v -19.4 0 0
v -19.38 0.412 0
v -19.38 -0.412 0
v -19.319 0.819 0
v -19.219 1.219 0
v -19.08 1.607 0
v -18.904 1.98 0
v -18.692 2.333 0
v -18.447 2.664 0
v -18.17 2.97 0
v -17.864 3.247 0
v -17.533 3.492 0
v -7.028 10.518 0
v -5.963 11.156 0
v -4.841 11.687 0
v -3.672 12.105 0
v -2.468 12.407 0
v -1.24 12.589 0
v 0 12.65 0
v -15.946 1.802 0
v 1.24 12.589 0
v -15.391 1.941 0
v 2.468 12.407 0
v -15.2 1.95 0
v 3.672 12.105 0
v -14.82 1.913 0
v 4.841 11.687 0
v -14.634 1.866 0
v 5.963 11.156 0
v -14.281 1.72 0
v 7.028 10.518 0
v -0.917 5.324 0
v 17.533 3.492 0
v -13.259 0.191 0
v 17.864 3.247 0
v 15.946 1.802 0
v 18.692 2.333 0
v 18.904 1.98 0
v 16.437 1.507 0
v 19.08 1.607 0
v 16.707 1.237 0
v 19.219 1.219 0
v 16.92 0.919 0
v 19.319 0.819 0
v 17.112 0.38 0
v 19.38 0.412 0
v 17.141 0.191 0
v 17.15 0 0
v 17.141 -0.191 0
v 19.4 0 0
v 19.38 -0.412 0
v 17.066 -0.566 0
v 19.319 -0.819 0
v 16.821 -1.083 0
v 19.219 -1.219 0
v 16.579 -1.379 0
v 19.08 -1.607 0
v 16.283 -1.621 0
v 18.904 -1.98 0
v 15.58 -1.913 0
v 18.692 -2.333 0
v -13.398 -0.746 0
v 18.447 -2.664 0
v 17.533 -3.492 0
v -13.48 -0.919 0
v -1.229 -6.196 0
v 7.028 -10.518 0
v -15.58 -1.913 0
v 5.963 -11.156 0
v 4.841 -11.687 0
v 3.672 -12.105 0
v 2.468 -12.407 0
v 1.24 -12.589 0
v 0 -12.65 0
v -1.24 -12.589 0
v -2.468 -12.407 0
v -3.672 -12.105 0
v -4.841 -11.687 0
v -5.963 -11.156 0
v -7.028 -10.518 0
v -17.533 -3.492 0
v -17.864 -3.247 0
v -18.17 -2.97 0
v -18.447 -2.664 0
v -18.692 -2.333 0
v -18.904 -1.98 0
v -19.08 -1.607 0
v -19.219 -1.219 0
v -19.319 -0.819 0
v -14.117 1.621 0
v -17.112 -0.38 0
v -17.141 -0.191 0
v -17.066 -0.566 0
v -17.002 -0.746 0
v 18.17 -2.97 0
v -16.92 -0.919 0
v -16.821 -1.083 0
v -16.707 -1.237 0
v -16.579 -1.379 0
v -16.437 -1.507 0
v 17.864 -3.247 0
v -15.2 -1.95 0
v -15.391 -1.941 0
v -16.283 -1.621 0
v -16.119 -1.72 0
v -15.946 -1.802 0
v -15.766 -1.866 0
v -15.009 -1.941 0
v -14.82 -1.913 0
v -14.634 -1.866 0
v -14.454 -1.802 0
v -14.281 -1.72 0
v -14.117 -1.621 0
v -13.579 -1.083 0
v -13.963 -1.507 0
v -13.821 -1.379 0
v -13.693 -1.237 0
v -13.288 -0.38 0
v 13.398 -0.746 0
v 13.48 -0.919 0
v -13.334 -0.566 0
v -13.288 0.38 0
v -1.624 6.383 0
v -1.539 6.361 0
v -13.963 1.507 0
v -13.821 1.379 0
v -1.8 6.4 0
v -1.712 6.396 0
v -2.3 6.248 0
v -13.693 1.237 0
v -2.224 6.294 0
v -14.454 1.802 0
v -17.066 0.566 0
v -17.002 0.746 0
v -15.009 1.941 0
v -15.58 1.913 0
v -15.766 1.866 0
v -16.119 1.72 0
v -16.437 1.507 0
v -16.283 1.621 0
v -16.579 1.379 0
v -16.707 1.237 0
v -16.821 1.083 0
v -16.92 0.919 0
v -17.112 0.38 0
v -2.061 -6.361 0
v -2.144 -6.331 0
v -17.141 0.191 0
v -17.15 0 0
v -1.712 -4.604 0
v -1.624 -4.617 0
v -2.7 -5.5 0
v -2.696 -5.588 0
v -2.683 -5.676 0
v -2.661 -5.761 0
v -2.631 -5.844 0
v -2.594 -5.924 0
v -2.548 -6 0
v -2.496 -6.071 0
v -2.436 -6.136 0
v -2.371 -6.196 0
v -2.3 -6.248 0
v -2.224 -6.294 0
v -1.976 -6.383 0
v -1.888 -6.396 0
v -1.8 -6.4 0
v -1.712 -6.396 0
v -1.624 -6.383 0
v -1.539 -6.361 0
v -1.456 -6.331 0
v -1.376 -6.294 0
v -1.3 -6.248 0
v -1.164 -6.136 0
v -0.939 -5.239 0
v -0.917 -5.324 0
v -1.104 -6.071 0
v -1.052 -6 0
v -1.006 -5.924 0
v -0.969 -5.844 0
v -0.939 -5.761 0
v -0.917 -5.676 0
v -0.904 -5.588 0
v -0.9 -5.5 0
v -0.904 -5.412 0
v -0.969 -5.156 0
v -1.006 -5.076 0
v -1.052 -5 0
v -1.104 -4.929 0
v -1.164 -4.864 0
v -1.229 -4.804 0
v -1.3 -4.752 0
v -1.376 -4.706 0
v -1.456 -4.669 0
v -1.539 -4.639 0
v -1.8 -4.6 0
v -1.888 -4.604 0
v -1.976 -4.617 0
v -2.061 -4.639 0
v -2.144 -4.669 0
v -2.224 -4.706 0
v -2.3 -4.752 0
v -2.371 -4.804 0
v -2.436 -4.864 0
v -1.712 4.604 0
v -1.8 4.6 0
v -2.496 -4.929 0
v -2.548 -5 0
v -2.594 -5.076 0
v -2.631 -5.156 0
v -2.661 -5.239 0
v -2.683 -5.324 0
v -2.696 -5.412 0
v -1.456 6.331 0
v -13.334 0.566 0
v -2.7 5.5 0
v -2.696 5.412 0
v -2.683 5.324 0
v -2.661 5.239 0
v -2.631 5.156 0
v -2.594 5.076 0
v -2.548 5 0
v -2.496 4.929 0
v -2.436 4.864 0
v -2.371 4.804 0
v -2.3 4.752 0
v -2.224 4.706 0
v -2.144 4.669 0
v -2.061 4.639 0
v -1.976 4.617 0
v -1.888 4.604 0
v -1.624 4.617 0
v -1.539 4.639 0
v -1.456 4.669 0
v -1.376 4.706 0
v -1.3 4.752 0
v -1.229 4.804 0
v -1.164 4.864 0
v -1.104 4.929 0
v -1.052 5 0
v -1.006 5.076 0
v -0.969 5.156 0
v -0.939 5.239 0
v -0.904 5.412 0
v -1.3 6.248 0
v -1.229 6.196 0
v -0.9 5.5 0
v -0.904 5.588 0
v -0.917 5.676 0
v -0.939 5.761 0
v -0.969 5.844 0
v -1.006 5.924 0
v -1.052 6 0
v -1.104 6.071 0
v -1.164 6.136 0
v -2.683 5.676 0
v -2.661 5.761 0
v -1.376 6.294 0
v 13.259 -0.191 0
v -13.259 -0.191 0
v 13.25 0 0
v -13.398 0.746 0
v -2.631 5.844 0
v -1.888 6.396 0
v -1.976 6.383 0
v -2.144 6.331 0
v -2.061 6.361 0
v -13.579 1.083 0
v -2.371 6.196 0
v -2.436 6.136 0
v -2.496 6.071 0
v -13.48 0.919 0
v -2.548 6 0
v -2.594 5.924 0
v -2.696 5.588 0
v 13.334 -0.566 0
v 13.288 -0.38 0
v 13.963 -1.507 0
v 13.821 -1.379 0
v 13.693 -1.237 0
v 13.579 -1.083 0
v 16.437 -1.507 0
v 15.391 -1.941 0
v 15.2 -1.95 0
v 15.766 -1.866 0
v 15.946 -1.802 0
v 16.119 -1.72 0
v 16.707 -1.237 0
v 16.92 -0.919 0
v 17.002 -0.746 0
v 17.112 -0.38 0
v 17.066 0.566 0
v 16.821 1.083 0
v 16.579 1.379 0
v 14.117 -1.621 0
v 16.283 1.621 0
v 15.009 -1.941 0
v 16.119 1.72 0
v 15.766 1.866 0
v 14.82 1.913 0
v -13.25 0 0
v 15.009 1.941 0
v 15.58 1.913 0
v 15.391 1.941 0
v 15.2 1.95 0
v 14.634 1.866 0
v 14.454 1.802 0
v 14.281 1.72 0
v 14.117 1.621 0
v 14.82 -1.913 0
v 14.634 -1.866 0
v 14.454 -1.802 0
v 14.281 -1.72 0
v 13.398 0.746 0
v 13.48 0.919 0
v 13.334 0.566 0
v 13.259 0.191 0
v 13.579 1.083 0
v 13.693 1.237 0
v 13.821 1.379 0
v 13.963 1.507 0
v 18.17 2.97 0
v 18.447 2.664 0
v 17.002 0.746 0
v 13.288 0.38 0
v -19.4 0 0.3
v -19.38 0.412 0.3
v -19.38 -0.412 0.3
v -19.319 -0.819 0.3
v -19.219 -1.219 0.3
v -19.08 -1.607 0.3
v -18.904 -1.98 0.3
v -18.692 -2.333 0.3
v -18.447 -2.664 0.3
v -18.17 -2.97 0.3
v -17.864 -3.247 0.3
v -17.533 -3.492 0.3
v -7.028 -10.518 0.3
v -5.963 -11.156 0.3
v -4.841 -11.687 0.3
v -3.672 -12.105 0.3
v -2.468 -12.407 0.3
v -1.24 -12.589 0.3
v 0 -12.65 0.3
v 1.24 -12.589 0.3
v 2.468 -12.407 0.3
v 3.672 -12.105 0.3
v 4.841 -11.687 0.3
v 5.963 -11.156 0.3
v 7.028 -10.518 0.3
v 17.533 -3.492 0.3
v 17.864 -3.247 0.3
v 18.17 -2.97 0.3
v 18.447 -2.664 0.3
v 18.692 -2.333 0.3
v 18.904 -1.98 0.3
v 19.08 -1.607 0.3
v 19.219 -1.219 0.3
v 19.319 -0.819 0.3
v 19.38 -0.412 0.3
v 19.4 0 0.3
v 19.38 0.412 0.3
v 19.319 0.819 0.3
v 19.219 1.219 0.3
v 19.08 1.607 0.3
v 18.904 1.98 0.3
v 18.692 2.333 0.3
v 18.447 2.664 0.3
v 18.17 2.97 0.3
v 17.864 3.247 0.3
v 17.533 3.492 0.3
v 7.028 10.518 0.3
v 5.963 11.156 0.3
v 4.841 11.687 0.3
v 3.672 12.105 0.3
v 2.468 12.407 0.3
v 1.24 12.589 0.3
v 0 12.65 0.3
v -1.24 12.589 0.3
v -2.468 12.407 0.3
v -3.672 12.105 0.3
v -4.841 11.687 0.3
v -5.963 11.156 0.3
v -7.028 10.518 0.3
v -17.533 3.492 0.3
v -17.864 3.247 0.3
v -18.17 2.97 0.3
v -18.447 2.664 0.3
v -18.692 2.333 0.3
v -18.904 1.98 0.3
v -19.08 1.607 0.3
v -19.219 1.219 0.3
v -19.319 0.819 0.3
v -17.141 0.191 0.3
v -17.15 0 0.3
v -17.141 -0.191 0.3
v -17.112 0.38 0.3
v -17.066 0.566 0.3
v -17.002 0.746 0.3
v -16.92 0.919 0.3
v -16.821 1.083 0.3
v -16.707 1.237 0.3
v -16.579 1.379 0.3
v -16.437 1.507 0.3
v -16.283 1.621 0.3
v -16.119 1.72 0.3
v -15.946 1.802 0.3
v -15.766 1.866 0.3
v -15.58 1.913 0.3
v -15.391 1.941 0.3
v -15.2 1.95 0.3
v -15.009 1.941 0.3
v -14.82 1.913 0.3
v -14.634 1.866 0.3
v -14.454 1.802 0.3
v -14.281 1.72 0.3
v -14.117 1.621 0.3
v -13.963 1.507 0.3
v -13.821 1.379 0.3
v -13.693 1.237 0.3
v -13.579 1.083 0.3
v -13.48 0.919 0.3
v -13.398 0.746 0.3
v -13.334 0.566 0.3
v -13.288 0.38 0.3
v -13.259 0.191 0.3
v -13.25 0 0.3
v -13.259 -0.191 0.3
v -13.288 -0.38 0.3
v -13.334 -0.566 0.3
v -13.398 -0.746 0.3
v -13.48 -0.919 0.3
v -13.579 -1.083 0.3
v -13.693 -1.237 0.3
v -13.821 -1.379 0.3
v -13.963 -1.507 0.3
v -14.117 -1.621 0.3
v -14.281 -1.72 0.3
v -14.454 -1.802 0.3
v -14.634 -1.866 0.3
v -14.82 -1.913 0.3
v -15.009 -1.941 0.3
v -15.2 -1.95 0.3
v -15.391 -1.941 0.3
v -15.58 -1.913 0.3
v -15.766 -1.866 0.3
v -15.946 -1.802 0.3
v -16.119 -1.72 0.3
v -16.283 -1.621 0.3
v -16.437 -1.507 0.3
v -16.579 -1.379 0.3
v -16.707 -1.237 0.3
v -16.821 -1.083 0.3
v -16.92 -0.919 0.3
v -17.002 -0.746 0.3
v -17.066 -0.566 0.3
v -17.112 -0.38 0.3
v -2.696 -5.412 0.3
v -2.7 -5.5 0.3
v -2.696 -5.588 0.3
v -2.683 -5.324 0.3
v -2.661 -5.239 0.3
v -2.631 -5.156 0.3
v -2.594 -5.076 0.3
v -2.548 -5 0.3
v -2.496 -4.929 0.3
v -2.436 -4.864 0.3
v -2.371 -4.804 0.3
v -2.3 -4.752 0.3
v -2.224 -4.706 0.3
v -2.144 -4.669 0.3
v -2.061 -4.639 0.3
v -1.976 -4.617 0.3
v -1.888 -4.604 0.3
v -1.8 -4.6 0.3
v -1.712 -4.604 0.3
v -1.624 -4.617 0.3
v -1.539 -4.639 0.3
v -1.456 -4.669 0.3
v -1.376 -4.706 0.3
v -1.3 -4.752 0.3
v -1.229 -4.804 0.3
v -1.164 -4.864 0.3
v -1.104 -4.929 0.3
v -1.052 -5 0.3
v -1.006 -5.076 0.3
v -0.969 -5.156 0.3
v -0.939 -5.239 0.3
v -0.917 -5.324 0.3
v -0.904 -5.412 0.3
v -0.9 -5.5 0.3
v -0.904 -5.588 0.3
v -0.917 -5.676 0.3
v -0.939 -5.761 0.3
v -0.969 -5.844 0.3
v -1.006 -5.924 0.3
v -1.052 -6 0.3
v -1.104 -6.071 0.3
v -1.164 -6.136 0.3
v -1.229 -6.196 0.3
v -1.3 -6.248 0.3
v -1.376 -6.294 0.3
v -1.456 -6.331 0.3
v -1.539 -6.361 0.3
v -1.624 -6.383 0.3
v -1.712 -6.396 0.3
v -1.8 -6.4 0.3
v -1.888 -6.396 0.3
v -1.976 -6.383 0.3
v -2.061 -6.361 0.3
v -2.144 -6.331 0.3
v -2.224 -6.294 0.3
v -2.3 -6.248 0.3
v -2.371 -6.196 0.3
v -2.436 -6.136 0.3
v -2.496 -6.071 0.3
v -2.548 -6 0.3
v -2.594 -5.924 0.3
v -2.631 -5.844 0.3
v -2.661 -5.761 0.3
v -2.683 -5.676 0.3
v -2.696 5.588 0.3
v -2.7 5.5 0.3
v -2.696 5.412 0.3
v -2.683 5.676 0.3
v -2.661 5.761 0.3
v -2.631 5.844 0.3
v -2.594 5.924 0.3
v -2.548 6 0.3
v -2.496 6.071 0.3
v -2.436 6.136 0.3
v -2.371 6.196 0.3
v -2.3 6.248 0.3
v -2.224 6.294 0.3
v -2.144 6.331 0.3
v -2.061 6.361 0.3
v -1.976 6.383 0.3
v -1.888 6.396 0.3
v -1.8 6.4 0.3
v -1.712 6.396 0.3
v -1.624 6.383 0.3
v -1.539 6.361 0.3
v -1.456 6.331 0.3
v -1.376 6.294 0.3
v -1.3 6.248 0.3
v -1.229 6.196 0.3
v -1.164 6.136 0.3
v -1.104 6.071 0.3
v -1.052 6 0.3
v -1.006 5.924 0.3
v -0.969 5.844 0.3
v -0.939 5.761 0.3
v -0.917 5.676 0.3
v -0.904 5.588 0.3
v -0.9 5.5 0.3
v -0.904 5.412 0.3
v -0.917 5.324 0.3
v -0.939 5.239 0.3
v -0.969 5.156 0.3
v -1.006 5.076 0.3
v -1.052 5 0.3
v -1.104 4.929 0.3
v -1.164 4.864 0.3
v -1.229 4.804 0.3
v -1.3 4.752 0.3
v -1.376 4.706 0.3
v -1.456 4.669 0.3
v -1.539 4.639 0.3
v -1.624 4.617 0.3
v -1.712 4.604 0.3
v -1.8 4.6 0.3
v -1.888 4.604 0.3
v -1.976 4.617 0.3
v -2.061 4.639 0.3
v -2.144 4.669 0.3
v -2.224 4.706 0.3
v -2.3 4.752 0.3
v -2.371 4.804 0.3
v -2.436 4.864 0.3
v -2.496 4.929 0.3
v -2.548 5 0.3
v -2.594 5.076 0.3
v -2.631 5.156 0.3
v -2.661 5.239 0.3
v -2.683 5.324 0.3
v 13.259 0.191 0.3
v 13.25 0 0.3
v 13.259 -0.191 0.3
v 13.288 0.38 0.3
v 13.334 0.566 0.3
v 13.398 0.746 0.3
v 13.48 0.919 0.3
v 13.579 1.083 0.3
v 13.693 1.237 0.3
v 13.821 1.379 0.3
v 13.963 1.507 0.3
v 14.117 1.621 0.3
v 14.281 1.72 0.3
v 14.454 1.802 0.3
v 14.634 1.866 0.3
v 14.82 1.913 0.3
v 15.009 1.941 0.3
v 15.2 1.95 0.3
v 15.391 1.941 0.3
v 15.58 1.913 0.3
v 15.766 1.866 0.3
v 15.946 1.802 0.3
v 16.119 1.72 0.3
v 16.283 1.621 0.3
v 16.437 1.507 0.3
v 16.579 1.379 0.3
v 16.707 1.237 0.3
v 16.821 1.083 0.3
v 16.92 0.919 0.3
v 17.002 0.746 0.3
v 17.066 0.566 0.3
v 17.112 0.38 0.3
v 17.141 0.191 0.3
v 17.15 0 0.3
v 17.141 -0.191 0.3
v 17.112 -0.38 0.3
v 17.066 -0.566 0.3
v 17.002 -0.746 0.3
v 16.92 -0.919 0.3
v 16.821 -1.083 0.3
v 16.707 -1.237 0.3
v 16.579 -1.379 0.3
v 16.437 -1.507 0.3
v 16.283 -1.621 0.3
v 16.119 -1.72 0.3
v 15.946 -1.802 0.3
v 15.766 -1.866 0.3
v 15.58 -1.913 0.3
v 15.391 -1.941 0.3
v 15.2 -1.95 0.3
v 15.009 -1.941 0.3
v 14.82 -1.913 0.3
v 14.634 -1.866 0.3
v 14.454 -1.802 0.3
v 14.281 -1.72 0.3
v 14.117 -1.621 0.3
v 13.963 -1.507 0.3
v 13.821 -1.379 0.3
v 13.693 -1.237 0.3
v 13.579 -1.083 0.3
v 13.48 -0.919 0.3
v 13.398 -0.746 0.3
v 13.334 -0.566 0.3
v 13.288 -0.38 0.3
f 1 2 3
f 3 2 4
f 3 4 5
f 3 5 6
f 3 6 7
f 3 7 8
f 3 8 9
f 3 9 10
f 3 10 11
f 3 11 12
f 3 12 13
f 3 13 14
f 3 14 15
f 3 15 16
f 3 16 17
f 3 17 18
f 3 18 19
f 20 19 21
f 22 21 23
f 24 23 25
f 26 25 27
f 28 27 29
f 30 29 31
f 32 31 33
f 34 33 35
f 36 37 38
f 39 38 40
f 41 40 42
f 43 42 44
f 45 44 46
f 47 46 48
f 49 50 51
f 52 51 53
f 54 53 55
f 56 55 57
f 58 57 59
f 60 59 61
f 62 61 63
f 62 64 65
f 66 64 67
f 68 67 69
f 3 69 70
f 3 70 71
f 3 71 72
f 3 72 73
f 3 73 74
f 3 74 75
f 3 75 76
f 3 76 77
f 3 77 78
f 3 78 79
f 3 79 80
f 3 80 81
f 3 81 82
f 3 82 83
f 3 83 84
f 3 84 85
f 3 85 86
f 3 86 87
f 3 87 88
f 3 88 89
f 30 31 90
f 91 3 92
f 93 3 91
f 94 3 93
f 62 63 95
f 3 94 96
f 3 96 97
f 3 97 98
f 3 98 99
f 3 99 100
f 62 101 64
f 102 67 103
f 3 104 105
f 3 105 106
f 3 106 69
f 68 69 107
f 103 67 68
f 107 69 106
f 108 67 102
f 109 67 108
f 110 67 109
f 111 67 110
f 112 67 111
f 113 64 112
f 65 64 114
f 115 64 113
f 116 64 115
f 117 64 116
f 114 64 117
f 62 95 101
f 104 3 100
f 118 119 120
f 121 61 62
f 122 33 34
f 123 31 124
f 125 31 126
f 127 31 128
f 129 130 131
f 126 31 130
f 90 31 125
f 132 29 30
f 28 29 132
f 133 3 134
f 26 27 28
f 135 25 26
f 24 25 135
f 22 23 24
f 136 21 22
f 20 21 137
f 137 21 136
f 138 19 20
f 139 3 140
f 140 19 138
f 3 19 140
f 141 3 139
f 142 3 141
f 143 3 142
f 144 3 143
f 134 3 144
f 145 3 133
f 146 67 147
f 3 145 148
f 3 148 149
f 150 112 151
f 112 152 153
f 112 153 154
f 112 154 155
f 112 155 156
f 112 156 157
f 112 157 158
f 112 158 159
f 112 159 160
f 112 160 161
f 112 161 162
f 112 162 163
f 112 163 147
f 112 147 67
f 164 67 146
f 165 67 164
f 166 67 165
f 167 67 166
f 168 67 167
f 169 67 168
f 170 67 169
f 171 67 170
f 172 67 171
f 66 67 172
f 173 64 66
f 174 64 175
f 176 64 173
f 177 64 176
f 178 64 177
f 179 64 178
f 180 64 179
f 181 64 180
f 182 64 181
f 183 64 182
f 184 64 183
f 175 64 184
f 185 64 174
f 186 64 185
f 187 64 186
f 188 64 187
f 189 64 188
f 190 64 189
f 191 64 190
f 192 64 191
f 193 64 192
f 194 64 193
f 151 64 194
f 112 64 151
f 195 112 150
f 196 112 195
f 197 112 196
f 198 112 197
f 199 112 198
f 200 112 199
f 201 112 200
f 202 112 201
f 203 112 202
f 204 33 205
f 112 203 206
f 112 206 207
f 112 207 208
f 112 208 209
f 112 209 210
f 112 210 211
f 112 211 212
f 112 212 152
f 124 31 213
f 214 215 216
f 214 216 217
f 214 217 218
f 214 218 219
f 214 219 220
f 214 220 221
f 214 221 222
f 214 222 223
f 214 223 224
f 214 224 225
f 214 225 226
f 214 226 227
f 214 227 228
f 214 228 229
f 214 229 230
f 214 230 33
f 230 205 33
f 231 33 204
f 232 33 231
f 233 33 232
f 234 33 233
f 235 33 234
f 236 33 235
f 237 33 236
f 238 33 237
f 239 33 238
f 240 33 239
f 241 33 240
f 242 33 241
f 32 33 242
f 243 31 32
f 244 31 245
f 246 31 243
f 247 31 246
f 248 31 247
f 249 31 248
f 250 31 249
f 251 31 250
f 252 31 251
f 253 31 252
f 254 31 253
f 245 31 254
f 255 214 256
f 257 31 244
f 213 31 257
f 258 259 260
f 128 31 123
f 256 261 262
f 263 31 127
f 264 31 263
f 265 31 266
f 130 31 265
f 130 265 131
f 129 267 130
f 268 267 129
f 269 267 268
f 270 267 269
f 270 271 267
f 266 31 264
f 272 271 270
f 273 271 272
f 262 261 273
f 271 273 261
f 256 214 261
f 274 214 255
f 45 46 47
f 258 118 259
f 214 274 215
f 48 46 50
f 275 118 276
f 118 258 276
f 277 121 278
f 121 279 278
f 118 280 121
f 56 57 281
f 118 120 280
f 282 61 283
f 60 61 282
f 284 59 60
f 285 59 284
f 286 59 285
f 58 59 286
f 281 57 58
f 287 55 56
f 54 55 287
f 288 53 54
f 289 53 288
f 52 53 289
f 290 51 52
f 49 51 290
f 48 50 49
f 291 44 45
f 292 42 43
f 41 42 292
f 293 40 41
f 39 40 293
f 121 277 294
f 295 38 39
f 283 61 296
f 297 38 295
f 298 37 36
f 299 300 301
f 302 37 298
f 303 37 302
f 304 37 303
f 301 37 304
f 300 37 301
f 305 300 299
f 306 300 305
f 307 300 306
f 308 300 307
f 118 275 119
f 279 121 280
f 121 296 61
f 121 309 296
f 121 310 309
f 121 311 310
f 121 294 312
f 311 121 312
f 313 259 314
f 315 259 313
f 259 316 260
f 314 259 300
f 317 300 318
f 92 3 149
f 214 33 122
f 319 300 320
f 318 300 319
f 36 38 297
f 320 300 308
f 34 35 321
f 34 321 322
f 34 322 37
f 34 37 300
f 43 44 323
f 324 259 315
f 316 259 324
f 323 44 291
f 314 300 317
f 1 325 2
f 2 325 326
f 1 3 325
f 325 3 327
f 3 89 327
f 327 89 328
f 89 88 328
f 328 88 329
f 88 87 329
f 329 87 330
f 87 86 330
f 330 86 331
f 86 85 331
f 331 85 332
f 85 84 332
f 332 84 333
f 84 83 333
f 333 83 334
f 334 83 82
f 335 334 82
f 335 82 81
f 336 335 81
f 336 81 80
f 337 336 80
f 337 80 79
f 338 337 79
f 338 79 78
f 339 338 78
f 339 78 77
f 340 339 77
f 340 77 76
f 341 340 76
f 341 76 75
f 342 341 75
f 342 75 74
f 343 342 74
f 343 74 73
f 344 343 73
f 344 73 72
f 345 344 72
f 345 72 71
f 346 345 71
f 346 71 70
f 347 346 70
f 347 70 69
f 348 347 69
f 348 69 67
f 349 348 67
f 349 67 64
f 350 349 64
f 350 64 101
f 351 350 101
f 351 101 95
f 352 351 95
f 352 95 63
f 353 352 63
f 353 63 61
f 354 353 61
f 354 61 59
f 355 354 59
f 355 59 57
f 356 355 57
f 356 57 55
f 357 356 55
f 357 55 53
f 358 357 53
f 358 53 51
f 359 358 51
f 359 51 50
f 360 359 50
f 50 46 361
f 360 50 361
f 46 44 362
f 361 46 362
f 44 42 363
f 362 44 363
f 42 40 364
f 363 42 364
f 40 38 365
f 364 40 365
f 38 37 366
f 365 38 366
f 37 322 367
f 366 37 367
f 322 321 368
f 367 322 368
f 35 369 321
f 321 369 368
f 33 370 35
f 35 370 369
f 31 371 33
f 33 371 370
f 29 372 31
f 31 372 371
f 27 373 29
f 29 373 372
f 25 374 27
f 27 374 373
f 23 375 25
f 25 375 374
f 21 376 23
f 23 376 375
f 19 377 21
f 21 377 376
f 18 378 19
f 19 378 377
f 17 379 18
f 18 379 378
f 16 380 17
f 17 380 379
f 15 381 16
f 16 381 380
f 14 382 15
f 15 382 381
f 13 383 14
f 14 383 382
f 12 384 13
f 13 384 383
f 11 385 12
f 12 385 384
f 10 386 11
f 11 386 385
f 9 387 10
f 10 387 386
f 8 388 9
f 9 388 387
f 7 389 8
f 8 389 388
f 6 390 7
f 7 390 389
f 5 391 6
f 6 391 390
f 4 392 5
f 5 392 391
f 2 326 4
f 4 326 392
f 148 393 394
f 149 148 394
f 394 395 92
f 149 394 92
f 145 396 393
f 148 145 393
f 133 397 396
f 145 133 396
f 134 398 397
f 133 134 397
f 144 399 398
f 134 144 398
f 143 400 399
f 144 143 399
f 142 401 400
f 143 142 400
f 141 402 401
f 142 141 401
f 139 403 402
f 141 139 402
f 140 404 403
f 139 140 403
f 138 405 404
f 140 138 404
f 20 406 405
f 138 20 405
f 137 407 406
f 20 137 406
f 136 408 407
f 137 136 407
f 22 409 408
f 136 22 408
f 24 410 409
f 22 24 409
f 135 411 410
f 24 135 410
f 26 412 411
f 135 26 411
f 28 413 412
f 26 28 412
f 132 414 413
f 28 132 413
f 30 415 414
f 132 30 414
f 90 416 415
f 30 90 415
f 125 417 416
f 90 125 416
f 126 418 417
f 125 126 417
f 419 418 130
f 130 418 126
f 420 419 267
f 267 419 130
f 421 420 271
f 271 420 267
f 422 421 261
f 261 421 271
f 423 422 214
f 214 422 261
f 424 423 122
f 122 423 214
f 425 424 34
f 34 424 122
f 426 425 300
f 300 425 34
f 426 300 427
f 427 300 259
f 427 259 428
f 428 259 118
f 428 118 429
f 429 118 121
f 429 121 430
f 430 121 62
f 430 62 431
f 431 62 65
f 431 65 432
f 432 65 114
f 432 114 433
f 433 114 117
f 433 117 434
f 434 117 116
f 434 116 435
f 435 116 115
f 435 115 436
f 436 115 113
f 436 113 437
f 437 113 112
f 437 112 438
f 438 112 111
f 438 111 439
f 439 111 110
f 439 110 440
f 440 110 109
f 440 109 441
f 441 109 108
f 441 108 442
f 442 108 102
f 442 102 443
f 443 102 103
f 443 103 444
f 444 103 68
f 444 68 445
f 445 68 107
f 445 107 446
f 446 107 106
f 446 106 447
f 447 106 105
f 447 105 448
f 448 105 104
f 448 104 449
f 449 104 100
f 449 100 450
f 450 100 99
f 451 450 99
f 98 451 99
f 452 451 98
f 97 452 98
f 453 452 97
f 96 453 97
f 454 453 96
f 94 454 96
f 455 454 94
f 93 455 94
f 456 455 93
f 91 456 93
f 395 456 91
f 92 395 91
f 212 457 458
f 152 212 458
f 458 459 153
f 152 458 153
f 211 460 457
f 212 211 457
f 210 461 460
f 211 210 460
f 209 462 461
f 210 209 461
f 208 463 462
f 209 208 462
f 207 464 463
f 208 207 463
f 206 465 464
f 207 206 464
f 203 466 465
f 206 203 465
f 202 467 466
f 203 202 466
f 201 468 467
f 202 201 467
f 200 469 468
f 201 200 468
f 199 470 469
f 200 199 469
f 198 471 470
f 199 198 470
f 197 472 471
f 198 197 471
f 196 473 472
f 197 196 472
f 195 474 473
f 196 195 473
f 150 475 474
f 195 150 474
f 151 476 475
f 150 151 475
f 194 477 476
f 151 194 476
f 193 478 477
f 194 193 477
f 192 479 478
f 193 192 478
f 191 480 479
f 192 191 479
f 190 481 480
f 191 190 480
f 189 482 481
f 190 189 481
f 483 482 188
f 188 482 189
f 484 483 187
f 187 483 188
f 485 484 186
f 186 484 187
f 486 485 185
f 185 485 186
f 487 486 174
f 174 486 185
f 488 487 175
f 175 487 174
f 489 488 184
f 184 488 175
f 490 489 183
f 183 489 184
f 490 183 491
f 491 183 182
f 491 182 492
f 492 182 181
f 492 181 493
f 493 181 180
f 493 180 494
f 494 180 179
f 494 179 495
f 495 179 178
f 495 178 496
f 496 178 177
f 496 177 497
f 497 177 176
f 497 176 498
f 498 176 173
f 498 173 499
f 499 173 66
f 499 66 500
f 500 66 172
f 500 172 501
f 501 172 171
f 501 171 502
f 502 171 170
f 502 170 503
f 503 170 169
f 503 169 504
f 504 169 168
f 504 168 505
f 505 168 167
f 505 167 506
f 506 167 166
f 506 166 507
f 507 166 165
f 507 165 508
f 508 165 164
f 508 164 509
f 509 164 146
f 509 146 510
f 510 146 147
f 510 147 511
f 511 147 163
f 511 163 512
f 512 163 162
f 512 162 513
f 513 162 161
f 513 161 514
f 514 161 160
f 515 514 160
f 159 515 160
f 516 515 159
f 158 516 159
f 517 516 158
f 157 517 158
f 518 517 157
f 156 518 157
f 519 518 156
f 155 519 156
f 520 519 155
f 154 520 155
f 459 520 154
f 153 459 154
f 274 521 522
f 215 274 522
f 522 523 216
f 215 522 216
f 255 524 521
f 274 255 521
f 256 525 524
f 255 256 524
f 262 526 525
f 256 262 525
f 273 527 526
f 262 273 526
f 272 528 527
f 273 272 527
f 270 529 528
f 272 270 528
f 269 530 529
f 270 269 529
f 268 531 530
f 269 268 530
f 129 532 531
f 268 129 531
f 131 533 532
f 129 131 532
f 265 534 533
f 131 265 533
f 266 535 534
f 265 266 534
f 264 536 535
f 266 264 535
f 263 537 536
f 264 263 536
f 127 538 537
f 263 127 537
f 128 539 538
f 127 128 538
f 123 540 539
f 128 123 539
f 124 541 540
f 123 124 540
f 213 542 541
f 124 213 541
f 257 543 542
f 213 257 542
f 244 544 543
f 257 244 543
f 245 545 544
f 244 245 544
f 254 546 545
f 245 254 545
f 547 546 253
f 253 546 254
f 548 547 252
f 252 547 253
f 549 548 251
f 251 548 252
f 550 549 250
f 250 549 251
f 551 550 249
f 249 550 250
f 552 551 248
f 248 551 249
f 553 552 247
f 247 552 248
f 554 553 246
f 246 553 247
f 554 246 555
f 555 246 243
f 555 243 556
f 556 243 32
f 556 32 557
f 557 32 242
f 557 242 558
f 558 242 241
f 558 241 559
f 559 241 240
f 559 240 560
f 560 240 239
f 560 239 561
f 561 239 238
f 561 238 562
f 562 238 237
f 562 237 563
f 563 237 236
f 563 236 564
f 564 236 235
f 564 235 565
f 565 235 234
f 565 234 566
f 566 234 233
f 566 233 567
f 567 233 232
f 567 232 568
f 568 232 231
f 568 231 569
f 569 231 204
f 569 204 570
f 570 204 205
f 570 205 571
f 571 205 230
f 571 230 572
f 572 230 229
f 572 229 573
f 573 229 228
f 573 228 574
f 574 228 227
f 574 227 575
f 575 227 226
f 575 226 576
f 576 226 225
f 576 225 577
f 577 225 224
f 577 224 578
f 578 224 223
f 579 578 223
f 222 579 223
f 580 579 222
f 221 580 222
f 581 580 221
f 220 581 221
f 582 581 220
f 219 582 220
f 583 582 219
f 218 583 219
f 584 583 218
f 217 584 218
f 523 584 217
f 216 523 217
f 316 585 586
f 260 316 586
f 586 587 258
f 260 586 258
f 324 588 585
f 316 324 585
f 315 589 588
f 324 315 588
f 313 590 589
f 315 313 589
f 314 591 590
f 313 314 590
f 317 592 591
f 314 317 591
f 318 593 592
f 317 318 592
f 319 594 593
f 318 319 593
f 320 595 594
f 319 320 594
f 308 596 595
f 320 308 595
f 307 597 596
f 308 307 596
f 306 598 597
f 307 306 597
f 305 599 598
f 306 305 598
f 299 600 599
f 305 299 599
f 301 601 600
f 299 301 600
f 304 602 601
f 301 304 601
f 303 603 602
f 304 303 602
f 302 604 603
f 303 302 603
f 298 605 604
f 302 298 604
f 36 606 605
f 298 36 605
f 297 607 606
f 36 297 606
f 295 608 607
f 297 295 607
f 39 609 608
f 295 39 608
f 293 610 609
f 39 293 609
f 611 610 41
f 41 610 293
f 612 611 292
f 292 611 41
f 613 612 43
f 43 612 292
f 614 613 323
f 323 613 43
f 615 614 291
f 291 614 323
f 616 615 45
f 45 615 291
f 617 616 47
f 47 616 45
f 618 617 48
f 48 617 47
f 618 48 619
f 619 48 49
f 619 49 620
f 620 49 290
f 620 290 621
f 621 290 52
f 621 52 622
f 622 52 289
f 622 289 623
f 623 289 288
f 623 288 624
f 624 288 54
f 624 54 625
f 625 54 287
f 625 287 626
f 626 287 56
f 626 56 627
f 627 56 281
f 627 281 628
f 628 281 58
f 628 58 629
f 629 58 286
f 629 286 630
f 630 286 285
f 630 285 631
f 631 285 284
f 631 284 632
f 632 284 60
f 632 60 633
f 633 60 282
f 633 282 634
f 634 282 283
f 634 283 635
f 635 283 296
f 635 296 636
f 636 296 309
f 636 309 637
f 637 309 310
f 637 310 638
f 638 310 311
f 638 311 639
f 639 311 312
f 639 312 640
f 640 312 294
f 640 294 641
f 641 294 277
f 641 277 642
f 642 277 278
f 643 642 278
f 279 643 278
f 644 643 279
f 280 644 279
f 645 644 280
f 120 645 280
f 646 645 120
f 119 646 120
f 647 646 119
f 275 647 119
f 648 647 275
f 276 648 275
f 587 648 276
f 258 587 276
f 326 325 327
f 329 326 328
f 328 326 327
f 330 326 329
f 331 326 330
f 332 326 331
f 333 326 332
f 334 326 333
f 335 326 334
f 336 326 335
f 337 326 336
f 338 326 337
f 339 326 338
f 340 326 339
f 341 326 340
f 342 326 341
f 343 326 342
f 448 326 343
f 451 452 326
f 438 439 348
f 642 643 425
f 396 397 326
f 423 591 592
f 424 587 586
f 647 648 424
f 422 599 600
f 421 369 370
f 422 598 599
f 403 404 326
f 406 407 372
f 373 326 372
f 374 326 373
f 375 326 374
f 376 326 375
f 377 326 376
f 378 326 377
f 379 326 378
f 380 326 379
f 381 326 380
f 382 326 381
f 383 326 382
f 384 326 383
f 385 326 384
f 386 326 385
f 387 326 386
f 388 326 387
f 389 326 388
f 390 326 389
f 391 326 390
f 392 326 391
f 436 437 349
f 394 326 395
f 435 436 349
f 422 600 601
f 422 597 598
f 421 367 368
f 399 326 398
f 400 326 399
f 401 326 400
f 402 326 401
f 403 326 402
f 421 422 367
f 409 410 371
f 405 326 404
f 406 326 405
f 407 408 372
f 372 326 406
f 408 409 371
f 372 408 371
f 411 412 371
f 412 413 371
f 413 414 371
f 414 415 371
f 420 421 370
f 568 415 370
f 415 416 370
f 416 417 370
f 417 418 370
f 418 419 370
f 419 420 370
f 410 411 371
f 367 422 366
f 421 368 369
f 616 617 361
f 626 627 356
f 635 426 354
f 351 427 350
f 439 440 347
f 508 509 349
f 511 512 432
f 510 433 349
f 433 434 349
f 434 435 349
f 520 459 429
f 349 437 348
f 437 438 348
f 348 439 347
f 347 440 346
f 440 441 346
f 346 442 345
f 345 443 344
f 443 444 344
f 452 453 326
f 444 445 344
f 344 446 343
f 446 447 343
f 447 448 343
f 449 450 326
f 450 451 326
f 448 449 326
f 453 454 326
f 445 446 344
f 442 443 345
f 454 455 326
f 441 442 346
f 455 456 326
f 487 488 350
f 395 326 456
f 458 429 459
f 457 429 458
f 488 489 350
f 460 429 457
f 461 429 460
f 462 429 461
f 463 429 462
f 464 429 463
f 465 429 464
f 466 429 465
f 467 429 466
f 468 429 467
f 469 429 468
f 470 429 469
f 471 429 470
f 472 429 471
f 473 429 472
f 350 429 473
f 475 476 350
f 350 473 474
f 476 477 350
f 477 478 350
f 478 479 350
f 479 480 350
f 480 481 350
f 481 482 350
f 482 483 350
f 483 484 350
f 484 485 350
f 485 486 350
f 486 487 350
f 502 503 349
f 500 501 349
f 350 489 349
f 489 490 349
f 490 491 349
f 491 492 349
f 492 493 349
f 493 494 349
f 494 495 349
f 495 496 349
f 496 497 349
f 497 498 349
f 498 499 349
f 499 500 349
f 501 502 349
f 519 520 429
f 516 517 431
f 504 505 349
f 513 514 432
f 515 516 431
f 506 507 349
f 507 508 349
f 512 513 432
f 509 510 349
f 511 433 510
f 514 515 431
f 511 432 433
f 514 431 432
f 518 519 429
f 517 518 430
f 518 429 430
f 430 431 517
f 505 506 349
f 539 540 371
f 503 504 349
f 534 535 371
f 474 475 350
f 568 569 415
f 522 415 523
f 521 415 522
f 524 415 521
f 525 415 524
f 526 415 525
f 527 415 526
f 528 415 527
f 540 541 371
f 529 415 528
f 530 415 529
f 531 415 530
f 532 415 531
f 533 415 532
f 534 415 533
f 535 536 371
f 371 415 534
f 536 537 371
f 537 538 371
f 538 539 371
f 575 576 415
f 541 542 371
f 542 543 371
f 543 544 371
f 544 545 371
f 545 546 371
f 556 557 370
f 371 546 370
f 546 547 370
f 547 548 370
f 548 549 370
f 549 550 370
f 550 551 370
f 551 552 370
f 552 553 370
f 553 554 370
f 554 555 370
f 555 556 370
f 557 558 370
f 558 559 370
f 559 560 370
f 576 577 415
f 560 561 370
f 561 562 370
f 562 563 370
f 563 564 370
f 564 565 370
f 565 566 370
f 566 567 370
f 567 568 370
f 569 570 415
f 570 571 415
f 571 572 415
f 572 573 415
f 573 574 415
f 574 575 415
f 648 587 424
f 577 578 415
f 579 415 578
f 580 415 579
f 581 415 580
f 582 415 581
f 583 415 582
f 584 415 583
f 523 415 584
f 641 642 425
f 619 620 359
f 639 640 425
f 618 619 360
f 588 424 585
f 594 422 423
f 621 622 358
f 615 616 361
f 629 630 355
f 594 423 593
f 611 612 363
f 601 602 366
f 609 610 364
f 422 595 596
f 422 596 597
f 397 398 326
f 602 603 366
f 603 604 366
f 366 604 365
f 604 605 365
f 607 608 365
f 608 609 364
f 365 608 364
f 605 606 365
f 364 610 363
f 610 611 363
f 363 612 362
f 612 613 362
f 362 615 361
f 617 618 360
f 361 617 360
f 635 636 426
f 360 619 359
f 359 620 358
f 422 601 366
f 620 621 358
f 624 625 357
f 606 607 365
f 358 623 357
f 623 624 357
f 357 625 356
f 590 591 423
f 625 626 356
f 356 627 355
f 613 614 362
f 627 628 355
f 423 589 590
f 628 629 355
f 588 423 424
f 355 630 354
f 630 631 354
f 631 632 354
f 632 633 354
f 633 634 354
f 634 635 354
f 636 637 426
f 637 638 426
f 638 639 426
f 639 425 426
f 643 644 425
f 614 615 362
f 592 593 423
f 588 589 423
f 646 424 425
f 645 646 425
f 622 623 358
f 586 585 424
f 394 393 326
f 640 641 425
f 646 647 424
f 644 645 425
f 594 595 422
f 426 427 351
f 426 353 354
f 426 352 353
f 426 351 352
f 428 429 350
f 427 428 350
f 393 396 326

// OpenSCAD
// All dimensions are in mm
width = 38.80;
depth = 25.30;
height = 0.30;
mounting_hole_diameter = 3.90;
mounting_hole_to_mounting_hole_gap = 30.40;
lead_hole_diameter = 1.80;
lead_holes_to_mounting_hole_gap = 17.00;
lead_hole_to_lead_hole_gap = 11.00;
$fn=64;


// You should not have to change anything below this line
center_circle_r = depth/2;
mounting_hole_r = mounting_hole_diameter/2;
mounting_hole_offset_x = mounting_hole_to_mounting_hole_gap/2;
mounting_hole_hull_r = width/2 - mounting_hole_offset_x;
lead_hole_r = lead_hole_diameter/2;
lead_holes_x = mounting_hole_to_mounting_hole_gap/2 - lead_holes_to_mounting_hole_gap;
lead_hole_offset_y = lead_hole_to_lead_hole_gap/2;


difference() {
  hull() {
    translate([mounting_hole_offset_x, 0, 0]) cylinder(h=height, r=mounting_hole_hull_r);
    cylinder(h=height, r=center_circle_r);
    translate([-mounting_hole_offset_x, 0, 0]) cylinder(h=height, r=mounting_hole_hull_r);
  }

  // Mounting holes:
  translate([mounting_hole_offset_x, 0, -0.5]) cylinder(h=height+1, r=mounting_hole_r);
  translate([-mounting_hole_offset_x, 0, -0.5]) cylinder(h=height+1, r=mounting_hole_r);

  // Source and drain lead holes:
  translate([lead_holes_x, lead_hole_offset_y, -0.5]) cylinder(h=height+1, r=lead_hole_r);
  translate([lead_holes_x, -lead_hole_offset_y, -0.5]) cylinder(h=height+1, r=lead_hole_r);
}
